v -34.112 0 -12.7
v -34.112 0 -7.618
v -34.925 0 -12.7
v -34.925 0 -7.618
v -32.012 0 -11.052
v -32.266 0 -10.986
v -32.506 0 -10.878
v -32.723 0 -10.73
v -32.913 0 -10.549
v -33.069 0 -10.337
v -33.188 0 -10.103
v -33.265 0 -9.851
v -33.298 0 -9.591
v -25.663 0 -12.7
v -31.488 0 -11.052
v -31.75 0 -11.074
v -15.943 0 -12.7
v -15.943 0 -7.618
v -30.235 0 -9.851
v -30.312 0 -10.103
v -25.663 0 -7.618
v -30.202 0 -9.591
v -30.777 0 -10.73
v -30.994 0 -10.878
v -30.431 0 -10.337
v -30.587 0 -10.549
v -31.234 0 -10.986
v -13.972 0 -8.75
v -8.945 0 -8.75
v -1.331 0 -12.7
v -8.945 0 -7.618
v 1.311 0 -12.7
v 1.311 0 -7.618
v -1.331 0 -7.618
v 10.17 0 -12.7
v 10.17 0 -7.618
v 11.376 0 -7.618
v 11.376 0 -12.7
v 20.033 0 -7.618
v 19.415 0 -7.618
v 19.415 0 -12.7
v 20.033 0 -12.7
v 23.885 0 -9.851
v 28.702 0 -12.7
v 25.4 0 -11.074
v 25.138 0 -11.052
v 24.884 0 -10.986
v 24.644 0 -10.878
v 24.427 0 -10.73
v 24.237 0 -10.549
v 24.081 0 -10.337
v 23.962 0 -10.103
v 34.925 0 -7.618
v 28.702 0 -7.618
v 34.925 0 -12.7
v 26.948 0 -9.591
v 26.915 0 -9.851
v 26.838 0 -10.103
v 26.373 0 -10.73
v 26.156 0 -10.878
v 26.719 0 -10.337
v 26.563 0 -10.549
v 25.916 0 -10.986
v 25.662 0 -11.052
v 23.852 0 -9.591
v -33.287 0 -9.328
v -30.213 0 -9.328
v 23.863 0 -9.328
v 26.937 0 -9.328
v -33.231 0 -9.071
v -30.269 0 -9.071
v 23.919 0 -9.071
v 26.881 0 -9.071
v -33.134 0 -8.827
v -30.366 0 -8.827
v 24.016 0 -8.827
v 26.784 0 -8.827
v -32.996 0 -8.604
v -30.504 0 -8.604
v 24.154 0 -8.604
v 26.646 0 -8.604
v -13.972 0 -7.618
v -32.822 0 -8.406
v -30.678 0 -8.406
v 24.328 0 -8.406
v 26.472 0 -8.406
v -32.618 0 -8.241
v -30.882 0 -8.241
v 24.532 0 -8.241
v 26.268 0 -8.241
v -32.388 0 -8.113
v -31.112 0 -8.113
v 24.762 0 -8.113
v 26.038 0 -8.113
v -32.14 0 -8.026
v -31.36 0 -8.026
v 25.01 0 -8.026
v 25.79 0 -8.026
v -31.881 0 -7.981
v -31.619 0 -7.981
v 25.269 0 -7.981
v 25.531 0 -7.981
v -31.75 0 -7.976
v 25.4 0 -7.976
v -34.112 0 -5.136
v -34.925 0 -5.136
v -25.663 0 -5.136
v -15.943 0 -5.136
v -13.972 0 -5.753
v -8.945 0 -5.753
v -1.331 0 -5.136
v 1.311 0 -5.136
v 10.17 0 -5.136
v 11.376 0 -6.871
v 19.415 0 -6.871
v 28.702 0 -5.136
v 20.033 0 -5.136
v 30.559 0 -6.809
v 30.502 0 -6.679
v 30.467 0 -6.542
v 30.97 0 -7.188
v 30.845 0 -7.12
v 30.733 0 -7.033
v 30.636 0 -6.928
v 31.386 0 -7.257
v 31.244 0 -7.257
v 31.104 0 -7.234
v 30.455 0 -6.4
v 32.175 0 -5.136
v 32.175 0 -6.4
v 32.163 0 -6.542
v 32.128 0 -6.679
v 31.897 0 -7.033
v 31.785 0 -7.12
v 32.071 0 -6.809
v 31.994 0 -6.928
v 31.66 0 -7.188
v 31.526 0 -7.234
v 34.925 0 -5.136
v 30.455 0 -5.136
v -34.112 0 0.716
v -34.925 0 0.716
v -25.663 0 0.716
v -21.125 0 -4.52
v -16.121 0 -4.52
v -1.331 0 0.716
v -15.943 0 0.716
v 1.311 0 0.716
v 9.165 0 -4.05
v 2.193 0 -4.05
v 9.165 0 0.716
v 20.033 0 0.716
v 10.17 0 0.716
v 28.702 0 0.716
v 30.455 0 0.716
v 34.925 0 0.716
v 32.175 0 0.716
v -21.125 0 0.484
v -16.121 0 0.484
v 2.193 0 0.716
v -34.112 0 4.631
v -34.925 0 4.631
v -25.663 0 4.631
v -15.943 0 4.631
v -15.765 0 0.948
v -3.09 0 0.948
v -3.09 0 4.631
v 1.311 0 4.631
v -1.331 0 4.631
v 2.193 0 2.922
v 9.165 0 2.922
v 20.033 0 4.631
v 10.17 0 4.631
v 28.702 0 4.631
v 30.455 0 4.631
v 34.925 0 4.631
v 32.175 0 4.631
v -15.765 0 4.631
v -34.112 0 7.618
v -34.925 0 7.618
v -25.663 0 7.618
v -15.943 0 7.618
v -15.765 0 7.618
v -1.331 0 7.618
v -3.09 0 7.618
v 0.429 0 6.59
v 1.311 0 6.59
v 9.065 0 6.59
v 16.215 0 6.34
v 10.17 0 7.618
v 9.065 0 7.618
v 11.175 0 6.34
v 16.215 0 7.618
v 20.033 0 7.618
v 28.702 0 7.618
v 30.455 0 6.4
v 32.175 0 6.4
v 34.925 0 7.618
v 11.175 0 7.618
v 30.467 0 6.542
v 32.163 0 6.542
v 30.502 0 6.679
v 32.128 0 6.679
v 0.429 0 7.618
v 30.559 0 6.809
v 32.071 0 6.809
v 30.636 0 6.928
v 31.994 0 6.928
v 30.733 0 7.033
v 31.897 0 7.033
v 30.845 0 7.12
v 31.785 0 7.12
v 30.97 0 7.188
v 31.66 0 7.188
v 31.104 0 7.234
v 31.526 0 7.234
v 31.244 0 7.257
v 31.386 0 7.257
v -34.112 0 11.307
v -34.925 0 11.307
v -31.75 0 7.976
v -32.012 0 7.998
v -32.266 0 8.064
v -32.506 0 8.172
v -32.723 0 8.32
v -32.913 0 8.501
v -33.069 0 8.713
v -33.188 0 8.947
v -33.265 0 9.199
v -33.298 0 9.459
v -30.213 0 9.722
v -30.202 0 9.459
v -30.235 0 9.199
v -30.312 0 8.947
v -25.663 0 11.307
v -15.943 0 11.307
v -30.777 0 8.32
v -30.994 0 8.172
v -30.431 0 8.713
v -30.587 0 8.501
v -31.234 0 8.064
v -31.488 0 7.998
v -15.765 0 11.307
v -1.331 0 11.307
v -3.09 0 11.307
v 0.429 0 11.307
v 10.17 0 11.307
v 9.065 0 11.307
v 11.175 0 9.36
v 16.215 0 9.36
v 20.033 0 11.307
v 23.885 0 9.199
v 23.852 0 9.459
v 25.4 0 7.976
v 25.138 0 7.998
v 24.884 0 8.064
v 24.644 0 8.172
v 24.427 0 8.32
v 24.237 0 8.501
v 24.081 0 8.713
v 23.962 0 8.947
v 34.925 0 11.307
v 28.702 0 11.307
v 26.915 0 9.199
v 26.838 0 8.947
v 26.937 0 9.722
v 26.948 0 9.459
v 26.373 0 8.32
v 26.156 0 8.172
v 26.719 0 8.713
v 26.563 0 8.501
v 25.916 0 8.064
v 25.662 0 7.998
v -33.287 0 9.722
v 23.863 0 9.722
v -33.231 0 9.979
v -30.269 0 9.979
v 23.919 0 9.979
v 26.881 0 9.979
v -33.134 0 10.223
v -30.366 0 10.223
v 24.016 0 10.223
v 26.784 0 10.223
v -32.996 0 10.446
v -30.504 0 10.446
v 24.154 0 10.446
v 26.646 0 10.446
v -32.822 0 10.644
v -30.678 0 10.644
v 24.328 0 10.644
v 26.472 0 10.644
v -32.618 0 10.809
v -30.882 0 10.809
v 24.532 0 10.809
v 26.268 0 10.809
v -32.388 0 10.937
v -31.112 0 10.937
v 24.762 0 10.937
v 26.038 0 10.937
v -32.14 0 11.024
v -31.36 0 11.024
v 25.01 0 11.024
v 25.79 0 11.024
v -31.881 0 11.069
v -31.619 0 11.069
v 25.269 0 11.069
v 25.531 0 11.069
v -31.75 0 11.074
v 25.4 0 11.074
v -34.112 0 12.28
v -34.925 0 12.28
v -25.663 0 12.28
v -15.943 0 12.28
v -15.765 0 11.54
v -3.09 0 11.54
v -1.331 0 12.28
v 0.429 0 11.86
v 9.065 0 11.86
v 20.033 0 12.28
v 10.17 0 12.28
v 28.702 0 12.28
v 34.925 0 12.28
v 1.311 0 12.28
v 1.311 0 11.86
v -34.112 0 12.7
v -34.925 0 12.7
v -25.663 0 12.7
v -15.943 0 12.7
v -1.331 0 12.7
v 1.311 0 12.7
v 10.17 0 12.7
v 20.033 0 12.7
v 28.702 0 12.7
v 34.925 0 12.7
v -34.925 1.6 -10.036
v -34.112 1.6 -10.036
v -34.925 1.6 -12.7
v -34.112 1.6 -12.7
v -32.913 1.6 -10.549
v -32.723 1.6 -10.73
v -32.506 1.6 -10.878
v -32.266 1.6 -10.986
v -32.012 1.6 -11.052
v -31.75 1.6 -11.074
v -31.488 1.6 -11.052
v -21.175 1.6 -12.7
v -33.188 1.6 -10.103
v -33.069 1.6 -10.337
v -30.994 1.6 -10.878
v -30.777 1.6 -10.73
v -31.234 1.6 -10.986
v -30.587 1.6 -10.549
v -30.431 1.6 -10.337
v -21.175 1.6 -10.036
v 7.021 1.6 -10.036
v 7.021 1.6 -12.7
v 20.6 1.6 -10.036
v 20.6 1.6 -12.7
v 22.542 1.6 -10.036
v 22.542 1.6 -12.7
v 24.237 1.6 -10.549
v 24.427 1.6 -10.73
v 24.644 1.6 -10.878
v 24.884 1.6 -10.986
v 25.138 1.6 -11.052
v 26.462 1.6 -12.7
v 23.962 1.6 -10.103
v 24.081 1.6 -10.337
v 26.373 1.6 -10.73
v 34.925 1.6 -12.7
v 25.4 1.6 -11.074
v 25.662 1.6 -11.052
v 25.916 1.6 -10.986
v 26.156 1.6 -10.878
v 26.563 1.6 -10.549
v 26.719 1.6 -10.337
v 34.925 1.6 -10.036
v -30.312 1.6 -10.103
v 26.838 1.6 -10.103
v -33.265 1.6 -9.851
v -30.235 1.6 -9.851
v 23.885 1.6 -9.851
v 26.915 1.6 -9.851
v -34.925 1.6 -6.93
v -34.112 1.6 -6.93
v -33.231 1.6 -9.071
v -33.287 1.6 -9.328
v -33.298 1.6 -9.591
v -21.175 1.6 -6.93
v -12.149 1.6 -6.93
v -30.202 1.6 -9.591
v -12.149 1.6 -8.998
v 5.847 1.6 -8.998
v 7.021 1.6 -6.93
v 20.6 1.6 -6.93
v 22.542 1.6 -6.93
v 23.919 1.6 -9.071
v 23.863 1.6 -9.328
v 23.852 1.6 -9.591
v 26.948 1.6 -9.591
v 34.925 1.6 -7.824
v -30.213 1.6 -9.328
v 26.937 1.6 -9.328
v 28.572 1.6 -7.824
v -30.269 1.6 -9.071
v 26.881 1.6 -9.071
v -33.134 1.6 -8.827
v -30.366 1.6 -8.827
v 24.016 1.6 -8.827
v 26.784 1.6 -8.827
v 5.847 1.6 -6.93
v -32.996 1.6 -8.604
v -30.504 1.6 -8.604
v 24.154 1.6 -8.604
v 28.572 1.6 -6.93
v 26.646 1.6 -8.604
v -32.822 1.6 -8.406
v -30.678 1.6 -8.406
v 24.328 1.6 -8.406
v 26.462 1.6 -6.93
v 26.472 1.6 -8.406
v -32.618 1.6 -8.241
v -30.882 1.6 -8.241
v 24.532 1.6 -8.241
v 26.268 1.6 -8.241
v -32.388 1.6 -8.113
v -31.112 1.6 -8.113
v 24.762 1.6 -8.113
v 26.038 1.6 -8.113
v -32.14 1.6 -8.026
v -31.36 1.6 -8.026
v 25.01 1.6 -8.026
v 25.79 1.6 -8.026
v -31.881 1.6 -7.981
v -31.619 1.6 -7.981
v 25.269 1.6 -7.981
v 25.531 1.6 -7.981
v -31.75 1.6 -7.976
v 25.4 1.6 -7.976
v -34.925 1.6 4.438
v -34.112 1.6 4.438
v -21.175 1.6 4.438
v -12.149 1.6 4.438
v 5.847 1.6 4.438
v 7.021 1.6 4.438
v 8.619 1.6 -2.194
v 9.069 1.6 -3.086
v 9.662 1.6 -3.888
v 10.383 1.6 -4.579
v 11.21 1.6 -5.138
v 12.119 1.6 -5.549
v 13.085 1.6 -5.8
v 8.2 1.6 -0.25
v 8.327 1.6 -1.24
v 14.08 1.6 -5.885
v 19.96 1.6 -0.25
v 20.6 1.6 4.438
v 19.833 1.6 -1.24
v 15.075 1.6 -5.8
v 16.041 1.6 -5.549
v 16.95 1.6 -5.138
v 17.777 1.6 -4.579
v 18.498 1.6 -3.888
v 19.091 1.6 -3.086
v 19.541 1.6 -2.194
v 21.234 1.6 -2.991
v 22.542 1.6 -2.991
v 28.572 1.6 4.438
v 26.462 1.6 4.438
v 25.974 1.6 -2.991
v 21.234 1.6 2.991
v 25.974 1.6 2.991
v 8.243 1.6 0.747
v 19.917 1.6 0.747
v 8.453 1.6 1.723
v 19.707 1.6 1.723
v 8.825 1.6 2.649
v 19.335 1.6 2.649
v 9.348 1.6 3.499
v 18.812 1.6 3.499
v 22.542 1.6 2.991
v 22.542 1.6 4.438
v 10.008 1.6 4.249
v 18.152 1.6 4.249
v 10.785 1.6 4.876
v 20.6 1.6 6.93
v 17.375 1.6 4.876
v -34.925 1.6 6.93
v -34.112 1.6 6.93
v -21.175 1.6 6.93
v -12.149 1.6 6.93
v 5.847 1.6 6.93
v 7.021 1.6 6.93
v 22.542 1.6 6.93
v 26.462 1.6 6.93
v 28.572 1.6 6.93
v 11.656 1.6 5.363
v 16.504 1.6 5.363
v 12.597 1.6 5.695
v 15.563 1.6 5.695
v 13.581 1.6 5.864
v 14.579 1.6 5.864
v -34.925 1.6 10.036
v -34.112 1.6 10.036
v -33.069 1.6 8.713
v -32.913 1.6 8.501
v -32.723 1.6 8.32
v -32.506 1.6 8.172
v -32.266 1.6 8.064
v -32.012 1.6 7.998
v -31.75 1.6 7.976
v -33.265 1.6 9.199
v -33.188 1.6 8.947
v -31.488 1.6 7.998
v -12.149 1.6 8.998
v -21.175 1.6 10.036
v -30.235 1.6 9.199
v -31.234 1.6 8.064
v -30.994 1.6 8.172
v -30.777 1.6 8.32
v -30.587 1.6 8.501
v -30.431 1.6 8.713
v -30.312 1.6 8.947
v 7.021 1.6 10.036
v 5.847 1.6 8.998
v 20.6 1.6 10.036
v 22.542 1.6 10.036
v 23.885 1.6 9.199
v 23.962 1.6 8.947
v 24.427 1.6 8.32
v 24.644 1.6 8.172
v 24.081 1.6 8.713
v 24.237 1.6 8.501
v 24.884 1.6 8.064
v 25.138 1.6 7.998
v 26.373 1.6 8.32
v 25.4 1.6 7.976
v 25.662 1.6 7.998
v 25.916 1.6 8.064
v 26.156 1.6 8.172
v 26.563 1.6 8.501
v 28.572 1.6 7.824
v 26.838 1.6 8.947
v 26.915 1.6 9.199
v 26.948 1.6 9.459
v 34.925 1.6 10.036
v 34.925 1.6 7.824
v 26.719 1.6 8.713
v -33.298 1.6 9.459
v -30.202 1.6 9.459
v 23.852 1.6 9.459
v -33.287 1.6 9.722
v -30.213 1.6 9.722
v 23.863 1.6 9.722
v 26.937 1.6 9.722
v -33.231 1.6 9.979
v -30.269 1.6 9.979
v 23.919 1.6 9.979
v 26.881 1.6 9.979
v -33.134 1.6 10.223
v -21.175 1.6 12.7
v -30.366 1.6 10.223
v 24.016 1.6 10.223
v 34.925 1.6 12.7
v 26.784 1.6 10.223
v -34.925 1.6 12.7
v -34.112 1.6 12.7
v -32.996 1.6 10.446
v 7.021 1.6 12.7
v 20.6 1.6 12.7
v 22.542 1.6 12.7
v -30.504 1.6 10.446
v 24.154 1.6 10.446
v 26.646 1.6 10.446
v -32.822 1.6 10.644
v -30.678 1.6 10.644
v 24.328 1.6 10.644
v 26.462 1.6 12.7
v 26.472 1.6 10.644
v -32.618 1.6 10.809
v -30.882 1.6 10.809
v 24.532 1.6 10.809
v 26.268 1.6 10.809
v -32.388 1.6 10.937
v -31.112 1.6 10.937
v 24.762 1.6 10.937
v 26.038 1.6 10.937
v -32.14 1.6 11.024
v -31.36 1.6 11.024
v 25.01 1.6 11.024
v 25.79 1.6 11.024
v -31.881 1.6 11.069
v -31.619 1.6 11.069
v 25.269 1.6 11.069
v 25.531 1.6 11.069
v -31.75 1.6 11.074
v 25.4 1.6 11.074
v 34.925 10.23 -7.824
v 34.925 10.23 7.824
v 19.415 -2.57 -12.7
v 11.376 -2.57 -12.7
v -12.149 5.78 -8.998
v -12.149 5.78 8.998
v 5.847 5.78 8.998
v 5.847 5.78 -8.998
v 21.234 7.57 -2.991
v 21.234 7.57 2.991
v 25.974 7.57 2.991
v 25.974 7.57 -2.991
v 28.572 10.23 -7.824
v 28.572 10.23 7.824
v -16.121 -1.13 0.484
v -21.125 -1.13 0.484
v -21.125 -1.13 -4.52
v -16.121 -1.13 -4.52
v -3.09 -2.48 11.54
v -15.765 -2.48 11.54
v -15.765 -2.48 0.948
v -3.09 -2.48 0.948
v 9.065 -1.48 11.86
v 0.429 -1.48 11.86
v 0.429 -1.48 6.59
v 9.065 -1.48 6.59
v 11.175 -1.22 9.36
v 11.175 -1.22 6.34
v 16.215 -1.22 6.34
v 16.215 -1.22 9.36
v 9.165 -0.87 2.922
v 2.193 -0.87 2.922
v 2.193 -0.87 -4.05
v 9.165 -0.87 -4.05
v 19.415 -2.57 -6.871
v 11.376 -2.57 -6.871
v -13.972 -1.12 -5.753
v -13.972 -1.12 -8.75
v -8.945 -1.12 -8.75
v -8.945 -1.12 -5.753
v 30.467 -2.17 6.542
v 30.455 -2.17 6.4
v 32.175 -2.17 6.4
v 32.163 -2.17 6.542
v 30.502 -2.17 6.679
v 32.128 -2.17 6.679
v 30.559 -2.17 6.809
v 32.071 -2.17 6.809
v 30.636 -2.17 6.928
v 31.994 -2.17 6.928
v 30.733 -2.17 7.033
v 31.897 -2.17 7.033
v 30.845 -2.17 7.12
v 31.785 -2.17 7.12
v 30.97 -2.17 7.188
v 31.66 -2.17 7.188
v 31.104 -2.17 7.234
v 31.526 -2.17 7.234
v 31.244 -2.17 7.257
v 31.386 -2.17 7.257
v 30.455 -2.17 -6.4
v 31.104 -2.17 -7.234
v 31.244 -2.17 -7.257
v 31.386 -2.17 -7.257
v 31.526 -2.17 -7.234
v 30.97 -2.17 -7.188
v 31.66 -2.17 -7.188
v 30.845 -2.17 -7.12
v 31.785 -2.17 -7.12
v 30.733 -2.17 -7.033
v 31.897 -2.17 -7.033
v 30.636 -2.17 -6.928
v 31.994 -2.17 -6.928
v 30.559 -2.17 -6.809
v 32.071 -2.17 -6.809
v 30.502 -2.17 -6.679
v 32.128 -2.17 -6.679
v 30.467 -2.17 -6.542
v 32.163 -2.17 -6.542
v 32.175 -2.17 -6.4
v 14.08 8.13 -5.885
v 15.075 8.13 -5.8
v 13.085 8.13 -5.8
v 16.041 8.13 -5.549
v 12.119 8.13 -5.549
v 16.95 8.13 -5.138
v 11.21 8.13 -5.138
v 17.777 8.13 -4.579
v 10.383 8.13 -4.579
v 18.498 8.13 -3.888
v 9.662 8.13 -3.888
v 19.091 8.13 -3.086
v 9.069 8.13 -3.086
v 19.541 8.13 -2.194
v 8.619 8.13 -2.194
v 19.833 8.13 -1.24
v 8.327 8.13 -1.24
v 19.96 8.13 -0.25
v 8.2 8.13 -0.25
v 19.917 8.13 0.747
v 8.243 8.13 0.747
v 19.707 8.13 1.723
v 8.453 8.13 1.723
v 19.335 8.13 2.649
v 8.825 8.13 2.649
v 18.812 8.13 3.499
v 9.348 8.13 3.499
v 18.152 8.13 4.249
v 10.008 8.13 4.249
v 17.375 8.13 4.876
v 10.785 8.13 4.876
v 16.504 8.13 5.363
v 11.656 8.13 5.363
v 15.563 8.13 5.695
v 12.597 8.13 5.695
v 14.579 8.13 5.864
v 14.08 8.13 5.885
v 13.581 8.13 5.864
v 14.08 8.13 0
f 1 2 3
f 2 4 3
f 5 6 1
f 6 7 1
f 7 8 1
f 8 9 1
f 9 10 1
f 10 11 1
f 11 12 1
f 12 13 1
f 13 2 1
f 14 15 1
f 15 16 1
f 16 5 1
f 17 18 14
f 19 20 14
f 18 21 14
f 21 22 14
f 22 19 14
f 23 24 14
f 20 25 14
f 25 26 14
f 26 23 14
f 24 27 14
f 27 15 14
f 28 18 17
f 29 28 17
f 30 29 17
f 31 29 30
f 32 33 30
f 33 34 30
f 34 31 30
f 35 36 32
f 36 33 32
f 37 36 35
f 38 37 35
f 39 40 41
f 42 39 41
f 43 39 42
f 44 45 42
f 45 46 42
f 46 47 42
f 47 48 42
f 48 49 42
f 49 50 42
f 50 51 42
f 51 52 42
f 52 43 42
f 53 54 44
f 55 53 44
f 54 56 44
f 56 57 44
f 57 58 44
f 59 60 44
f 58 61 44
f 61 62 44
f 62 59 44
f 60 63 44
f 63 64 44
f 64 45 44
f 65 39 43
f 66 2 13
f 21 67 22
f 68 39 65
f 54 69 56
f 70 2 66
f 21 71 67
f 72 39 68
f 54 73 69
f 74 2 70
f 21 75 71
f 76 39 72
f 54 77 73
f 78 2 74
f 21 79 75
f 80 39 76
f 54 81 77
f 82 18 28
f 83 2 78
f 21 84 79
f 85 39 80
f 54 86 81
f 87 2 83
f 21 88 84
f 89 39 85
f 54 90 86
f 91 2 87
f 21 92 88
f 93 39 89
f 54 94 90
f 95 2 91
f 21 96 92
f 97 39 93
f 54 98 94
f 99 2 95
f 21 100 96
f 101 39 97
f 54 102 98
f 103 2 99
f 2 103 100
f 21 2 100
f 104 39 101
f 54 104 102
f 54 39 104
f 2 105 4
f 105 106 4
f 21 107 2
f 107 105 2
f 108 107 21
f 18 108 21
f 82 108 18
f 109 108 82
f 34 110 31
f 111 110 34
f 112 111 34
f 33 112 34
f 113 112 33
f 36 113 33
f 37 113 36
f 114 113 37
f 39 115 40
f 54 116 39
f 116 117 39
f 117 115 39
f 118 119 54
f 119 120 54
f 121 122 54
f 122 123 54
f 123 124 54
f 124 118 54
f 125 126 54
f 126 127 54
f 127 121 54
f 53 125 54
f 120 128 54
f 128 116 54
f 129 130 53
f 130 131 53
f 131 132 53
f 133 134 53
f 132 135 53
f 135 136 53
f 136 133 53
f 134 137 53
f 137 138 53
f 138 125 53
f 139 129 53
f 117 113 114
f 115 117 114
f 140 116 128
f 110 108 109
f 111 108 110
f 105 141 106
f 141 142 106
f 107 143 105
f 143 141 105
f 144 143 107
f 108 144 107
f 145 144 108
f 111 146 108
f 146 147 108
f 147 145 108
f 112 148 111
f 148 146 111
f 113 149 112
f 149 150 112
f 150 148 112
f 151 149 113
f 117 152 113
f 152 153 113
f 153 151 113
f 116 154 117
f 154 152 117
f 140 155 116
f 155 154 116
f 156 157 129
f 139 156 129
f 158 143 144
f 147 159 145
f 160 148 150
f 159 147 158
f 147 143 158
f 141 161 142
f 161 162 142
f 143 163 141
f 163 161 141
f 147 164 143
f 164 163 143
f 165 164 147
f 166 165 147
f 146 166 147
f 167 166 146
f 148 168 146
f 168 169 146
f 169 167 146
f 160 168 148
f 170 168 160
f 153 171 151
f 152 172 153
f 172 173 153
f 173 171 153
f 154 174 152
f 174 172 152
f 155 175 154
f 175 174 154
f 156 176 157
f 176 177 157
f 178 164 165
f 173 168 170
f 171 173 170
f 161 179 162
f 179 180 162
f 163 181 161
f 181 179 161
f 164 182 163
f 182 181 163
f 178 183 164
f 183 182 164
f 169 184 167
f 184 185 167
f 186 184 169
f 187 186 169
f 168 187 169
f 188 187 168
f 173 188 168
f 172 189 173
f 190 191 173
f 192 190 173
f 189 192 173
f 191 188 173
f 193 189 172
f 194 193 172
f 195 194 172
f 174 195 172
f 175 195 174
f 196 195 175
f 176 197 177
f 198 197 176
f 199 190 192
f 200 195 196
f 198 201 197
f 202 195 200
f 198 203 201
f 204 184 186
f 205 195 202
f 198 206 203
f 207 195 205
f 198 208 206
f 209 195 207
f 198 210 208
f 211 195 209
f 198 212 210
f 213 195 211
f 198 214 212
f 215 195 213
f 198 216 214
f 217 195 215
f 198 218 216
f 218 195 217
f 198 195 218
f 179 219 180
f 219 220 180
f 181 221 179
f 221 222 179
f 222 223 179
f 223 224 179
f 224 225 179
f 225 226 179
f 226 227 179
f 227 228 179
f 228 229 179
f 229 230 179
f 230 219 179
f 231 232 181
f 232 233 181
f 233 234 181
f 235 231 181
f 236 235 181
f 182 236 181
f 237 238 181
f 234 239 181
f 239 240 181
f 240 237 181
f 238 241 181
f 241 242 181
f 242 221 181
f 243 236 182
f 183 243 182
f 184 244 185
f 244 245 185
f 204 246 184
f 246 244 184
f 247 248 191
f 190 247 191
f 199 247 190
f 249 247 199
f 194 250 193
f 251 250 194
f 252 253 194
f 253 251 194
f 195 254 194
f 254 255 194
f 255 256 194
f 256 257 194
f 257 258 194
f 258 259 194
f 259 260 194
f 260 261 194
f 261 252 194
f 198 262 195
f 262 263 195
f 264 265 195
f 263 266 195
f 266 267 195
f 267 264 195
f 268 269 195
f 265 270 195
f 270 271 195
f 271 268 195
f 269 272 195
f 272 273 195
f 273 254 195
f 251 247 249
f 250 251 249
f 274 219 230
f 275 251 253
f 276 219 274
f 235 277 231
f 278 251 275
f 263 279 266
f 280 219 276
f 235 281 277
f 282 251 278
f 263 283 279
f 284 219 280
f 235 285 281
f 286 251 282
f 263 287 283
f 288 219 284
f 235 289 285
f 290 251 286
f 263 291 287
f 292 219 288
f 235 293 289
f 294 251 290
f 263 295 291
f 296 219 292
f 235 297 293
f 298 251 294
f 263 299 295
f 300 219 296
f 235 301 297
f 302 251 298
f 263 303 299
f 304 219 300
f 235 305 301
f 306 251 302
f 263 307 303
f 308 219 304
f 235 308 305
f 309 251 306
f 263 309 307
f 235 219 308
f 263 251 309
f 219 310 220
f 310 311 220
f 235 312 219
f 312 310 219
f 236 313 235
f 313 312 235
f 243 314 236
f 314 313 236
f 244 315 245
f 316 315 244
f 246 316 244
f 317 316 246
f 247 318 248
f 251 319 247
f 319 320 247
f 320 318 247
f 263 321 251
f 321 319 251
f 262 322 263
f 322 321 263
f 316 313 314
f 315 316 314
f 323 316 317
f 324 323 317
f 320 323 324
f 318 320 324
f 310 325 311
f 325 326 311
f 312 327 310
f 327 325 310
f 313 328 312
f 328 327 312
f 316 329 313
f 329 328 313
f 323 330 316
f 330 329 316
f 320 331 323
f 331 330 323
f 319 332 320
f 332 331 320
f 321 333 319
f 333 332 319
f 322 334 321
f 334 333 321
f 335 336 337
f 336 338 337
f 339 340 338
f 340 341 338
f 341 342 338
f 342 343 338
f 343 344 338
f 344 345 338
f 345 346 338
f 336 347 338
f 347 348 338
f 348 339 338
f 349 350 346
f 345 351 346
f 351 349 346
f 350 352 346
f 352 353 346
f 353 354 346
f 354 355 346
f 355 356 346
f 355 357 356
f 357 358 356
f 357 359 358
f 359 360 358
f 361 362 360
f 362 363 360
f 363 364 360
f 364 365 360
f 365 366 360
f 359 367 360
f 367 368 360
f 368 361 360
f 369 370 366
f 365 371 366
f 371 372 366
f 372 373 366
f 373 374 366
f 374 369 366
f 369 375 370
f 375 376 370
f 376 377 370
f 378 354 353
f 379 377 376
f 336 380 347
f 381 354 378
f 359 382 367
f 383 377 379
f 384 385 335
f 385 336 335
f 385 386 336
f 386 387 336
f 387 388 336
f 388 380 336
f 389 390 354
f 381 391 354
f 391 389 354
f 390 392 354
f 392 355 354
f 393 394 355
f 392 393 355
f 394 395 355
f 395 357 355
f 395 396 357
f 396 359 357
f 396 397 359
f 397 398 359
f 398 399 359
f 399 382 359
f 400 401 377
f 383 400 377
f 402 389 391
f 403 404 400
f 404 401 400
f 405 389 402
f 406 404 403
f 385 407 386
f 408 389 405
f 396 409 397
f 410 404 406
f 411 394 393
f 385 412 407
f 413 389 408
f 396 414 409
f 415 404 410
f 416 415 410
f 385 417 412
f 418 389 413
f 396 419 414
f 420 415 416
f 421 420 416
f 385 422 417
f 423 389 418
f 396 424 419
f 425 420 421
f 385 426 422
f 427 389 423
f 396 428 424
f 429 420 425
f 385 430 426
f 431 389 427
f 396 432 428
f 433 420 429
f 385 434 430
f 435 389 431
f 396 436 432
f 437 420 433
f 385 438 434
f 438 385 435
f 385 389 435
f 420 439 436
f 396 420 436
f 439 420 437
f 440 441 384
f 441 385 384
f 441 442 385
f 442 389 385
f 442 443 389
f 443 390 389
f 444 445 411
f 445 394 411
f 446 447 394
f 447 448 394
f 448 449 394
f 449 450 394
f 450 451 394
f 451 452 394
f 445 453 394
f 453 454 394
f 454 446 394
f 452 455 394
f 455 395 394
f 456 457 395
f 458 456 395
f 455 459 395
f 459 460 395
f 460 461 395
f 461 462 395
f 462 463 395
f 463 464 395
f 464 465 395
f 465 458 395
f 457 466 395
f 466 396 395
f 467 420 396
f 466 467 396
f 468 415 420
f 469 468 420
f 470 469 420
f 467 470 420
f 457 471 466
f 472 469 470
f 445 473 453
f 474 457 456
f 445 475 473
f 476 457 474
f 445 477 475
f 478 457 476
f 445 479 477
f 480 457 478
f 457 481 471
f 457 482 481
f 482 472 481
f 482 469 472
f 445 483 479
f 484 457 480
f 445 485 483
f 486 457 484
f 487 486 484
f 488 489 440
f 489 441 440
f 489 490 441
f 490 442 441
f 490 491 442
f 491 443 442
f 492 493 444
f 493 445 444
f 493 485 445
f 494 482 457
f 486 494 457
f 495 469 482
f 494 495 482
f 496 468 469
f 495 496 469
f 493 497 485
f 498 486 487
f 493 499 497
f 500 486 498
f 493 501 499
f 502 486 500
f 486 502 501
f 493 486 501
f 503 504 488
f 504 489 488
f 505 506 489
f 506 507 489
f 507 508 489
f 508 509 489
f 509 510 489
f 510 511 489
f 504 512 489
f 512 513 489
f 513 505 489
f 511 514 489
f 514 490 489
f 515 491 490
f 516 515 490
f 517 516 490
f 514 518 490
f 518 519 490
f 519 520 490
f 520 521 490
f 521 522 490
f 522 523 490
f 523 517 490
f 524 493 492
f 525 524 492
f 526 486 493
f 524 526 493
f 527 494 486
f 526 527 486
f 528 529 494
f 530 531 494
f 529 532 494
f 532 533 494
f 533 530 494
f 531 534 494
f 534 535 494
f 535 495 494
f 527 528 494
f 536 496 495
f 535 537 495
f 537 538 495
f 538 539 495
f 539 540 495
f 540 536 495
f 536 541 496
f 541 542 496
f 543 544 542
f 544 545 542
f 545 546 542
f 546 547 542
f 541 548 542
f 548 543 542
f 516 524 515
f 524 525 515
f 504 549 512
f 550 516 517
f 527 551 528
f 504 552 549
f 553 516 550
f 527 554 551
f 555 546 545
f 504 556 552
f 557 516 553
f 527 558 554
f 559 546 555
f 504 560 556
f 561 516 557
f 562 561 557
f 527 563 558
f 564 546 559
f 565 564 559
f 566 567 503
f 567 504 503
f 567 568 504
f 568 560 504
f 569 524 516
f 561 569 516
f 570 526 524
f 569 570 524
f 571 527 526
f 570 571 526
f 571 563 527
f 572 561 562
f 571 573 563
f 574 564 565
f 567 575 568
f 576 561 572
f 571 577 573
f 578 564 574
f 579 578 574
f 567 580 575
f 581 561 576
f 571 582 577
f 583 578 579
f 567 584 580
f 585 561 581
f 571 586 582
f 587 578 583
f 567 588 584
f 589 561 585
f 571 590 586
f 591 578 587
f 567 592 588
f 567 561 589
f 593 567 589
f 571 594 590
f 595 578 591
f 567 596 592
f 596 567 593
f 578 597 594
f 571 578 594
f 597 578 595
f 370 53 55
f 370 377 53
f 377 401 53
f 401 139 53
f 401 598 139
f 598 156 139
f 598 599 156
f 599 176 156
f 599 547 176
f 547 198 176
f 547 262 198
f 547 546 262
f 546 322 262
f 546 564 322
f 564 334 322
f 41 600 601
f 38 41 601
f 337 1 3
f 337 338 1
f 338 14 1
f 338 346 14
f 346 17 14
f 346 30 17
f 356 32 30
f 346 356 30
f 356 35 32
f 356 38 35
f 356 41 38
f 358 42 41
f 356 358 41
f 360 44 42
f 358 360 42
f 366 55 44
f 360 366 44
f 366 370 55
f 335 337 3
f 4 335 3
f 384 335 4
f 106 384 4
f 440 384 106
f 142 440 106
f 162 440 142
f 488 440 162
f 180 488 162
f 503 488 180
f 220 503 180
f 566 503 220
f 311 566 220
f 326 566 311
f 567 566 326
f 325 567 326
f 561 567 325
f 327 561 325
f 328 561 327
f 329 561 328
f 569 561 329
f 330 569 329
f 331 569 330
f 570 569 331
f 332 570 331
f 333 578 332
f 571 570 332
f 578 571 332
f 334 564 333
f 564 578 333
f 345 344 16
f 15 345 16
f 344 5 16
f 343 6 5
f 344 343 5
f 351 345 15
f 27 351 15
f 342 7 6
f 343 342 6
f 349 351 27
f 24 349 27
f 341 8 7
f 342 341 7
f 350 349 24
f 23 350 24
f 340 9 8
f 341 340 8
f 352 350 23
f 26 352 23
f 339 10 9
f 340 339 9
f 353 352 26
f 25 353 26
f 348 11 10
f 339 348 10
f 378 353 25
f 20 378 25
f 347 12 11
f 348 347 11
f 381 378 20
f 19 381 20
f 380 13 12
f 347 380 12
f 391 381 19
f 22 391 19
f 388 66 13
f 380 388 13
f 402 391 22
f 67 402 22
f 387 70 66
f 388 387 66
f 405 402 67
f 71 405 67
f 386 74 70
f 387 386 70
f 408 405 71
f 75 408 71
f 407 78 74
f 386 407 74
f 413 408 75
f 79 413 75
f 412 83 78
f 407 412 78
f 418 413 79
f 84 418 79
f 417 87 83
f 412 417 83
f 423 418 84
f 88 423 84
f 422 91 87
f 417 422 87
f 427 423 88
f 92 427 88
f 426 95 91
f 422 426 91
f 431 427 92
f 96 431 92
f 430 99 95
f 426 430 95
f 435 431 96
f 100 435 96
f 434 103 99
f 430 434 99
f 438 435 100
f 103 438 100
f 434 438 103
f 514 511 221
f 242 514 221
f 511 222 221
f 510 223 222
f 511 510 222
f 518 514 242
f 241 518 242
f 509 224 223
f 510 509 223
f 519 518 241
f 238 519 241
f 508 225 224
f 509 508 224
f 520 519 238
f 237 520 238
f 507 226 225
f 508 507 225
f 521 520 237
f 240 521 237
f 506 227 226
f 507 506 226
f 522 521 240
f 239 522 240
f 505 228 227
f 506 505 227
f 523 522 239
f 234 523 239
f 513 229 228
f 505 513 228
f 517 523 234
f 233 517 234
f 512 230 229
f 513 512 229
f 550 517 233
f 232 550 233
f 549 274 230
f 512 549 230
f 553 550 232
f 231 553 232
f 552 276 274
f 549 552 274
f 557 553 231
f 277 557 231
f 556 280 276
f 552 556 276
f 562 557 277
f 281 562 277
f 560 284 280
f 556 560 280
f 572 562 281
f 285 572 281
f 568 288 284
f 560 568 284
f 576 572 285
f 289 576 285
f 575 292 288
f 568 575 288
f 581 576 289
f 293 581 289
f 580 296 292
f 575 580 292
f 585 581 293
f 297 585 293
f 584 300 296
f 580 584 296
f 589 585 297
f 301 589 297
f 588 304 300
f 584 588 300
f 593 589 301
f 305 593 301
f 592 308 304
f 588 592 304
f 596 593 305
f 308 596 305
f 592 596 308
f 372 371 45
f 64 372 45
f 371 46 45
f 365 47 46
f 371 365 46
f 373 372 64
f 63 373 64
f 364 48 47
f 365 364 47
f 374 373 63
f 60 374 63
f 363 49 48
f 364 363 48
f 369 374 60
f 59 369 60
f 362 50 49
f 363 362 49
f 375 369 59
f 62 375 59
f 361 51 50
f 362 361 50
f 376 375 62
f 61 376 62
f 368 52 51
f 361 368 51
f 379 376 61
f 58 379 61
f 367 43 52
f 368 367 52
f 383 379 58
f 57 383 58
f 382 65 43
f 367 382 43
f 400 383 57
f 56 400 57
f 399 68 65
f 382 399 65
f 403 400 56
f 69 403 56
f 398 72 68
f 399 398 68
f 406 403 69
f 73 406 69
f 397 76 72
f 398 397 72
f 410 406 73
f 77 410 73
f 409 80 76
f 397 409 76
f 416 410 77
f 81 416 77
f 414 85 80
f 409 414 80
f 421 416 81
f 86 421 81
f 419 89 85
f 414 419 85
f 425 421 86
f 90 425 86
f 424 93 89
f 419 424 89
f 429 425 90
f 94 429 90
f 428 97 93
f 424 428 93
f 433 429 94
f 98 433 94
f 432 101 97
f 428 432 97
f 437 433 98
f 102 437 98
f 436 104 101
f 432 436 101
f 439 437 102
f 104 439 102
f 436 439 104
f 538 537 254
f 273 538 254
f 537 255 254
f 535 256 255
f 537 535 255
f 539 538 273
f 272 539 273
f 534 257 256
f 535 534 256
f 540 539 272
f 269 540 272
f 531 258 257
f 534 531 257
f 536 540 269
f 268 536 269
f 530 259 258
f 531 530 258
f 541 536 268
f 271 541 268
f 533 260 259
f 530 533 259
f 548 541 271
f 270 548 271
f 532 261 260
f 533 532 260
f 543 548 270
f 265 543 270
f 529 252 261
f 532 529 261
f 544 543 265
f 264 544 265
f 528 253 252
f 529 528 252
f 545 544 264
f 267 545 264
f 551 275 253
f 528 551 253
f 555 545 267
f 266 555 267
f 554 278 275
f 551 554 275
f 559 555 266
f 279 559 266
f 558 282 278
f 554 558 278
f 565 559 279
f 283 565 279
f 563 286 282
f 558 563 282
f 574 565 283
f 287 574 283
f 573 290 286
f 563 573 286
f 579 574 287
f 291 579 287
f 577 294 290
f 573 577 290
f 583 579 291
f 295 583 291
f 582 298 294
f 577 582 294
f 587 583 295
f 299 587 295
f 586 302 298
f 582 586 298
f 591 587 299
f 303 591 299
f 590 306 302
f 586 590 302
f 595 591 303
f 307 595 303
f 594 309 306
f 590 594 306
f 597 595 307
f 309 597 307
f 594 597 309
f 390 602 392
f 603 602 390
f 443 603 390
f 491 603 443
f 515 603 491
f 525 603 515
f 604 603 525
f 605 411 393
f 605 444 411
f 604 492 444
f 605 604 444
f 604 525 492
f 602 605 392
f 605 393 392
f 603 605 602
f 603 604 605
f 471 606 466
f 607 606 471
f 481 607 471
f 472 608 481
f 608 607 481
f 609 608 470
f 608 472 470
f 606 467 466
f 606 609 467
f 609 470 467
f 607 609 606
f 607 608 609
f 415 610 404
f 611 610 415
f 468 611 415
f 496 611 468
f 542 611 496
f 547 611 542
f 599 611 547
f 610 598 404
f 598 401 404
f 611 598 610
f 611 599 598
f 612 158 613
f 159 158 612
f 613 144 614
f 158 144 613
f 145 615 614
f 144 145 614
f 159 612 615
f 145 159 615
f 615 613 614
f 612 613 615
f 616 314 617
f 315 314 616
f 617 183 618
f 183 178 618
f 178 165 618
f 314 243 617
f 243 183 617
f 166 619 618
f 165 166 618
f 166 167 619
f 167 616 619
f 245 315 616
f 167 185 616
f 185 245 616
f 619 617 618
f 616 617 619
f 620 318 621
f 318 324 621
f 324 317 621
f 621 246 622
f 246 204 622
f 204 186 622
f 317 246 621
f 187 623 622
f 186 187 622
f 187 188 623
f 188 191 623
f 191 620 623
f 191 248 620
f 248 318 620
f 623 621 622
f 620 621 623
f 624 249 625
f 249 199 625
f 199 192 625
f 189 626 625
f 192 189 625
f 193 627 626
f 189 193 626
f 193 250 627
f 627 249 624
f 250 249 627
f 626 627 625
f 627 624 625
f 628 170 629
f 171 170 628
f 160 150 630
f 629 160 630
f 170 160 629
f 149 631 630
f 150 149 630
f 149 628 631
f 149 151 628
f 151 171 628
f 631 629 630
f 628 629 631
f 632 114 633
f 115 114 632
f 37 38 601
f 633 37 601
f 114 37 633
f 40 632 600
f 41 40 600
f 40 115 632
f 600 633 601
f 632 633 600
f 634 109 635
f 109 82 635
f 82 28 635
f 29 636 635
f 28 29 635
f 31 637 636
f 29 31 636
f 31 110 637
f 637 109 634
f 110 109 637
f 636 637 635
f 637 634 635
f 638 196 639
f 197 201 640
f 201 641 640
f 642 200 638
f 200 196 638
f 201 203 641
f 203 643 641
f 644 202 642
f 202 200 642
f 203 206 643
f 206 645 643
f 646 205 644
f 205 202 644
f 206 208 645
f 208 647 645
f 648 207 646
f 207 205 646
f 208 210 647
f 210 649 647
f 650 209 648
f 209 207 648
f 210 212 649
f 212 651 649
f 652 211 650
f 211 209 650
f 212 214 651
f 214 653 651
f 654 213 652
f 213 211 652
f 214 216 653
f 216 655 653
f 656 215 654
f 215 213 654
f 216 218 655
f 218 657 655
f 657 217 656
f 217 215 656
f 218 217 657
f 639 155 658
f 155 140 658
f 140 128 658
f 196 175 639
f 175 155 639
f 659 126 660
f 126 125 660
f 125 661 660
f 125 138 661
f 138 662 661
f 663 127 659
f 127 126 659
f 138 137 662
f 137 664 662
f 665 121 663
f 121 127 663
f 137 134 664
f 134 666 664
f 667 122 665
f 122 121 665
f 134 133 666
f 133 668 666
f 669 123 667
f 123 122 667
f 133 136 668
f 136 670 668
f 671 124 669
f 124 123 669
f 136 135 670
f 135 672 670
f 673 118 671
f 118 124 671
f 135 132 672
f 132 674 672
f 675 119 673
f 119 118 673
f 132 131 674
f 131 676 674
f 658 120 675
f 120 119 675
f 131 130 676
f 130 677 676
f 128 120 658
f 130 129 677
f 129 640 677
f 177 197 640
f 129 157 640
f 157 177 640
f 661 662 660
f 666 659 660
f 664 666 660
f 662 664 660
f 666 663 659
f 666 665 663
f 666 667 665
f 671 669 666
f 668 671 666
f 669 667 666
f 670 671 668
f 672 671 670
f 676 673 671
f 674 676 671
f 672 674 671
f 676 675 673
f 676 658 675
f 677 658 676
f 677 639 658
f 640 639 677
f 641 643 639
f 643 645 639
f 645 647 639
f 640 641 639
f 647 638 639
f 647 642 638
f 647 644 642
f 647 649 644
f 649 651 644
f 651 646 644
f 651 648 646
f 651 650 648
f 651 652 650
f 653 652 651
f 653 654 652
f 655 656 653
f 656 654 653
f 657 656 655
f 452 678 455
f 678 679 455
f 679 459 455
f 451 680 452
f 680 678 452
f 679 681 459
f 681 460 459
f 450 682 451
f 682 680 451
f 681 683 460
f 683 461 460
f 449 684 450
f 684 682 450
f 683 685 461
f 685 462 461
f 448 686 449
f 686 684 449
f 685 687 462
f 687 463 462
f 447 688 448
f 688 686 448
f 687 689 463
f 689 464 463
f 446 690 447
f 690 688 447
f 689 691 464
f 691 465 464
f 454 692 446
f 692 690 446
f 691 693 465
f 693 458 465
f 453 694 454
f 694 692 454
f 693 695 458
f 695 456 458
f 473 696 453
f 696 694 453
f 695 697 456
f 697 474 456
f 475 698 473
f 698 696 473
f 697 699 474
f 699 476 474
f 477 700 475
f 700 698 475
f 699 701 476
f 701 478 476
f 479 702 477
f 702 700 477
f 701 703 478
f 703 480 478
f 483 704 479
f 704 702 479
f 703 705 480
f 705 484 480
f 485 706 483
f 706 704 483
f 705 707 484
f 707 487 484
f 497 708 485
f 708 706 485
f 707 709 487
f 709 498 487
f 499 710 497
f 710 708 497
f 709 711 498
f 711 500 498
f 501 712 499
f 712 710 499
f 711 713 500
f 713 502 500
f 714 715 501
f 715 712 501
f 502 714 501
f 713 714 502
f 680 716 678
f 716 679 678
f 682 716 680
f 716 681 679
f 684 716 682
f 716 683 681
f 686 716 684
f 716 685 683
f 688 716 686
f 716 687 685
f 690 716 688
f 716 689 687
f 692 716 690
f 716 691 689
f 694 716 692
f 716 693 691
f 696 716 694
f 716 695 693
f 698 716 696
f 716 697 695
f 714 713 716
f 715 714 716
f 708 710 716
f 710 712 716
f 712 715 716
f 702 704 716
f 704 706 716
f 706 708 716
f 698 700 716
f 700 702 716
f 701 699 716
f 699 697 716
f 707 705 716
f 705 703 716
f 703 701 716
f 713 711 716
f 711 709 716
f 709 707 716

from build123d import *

# Parameters (mm, degrees)
SKETCH1_W                  = 69.85
SKETCH1_H                  = 25.4
SKETCH1_R                  = 1.5494
PCB_DEPTH                  = 1.6
TOP_FEATURES_W             = 17.9959
TOP_FEATURES_H             = 17.9959
GPS_ANTENNA_DEPTH          = 4.18
SKETCH2_3_W                = 4.74
SKETCH2_3_H                = 5.9817
JST_CONNECTOR_DEPTH        = 5.97
SKETCH2_4_W                = 6.35254
SKETCH2_4_H                = 15.64894
TERMINAL_BLOCK_DEPTH       = 8.63
BOTTOM_FEATURES_W          = 5.0038
BOTTOM_FEATURES_H          = 5.0038
CC1200_DEPTH               = 1.13
BOTTOM_FEATURES_4_W        = 12.6746
BOTTOM_FEATURES_4_H        = 10.5918
UBLOX_DEPTH                = 2.48
BOTTOM_FEATURES_5_W        = 8.636
BOTTOM_FEATURES_5_H        = 5.2705
FLASH_DEPTH                = 1.48
BOTTOM_FEATURES_6_W        = 5.04
BOTTOM_FEATURES_6_H        = 3.02
BARO_DEPTH                 = 1.22
BOTTOM_FEATURES_7_W        = 6.9723
BOTTOM_FEATURES_7_H        = 6.9723
UC_DEPTH                   = 0.87
BOTTOM_FEATURES_8_W        = 8.0391
BOTTOM_FEATURES_8_H        = 5.8293
USB_DEPTH                  = 2.57
BOTTOM_FEATURES_9_W        = 5.02666
BOTTOM_FEATURES_9_H        = 2.9972
ACCELEROMETER_DEPTH        = 1.12
TERMINALBLOCK_SOLDER_DEPTH = 2.17
TOP_FEATURES_5_R           = 5.885
BOSS_EXTRUDE13_DEPTH       = 6.53


with BuildPart() as part:
    # Sketch1 → PCB (new body)
    with BuildSketch(Plane(origin=(0, 0, 0), x_dir=(1, 0, 0), z_dir=(0, 1, 0))):
        Rectangle(SKETCH1_W, SKETCH1_H)
        with Locations((-31.75, 9.525)):
            Circle(SKETCH1_R, mode=Mode.SUBTRACT)
        with Locations((-31.75, -9.525)):
            Circle(SKETCH1_R, mode=Mode.SUBTRACT)
        with Locations((25.4, 9.525)):
            Circle(SKETCH1_R, mode=Mode.SUBTRACT)
        with Locations((25.4, -9.525)):
            Circle(SKETCH1_R, mode=Mode.SUBTRACT)
    extrude(amount=PCB_DEPTH)

    # top_features → gps_antenna (add)
    with BuildSketch(Plane(origin=(0, 1.6, 0), x_dir=(1, 0, 0), z_dir=(0, 1, 0))):
        with Locations((-3.15087, 0)):
            Rectangle(TOP_FEATURES_W, TOP_FEATURES_H)
    extrude(amount=GPS_ANTENNA_DEPTH)

    # Sketch2<3> → jst_connector (add)
    with BuildSketch(Plane(origin=(0, 1.6, 0), x_dir=(1, 0, 0), z_dir=(0, 1, 0))):
        with Locations((23.6044, 0)):
            Rectangle(SKETCH2_3_W, SKETCH2_3_H)
    extrude(amount=JST_CONNECTOR_DEPTH)

    # Sketch2<4> → terminal_block (add)
    with BuildSketch(Plane(origin=(0, 1.6, 0), x_dir=(1, 0, 0), z_dir=(0, 1, 0))):
        with Locations((31.74873, 0)):
            Rectangle(SKETCH2_4_W, SKETCH2_4_H)
    extrude(amount=TERMINAL_BLOCK_DEPTH)

    # bottom_features → cc1200 (add)
    with BuildSketch(Plane.XZ):
        with Locations((-18.6231, -2.0181)):
            Rectangle(BOTTOM_FEATURES_W, BOTTOM_FEATURES_H)
    extrude(amount=CC1200_DEPTH)

    # bottom_features<4> → ublox (add)
    with BuildSketch(Plane.XZ):
        with Locations((-9.4277, 6.2441)):
            Rectangle(BOTTOM_FEATURES_4_W, BOTTOM_FEATURES_4_H)
    extrude(amount=UBLOX_DEPTH)

    # bottom_features<5> → flash (add)
    with BuildSketch(Plane.XZ):
        with Locations((4.747, 9.22475)):
            Rectangle(BOTTOM_FEATURES_5_W, BOTTOM_FEATURES_5_H)
    extrude(amount=FLASH_DEPTH)

    # bottom_features<6> → baro (add)
    with BuildSketch(Plane.XZ):
        with Locations((13.695, 7.85)):
            Rectangle(BOTTOM_FEATURES_6_W, BOTTOM_FEATURES_6_H)
    extrude(amount=BARO_DEPTH)

    # bottom_features<7> → uC (add)
    with BuildSketch(Plane.XZ):
        with Locations((5.67885, -0.56385)):
            Rectangle(BOTTOM_FEATURES_7_W, BOTTOM_FEATURES_7_H)
    extrude(amount=UC_DEPTH)

    # bottom_features<8> → usb (add)
    with BuildSketch(Plane.XZ):
        with Locations((15.39545, -9.78535)):
            Rectangle(BOTTOM_FEATURES_8_W, BOTTOM_FEATURES_8_H)
    extrude(amount=USB_DEPTH)

    # bottom_features<9> → accelerometer (add)
    with BuildSketch(Plane.XZ):
        with Locations((-11.45833, -7.2514)):
            Rectangle(BOTTOM_FEATURES_9_W, BOTTOM_FEATURES_9_H)
    extrude(amount=ACCELEROMETER_DEPTH)

    # bottom_features<10> → terminalblock_solder (add)
    with BuildSketch(Plane.XZ):
        with BuildLine():
            Line((32.175, 6.4), (32.175, -6.4))
            ThreePointArc((32.175, -6.4), (31.315, -7.26), (30.455, -6.4))
            Line((30.455, -6.4), (30.455, 6.4))
            ThreePointArc((30.455, 6.4), (31.315, 7.26), (32.175, 6.4))
        make_face()
    extrude(amount=TERMINALBLOCK_SOLDER_DEPTH)

    # top_features<5> → Boss-Extrude13 (add)
    with BuildSketch(Plane(origin=(0, 1.6, 0), x_dir=(1, 0, 0), z_dir=(0, 1, 0))):
        with Locations((14.08, 0)):
            Circle(TOP_FEATURES_5_R)
    extrude(amount=BOSS_EXTRUDE13_DEPTH)


solid = part.part
